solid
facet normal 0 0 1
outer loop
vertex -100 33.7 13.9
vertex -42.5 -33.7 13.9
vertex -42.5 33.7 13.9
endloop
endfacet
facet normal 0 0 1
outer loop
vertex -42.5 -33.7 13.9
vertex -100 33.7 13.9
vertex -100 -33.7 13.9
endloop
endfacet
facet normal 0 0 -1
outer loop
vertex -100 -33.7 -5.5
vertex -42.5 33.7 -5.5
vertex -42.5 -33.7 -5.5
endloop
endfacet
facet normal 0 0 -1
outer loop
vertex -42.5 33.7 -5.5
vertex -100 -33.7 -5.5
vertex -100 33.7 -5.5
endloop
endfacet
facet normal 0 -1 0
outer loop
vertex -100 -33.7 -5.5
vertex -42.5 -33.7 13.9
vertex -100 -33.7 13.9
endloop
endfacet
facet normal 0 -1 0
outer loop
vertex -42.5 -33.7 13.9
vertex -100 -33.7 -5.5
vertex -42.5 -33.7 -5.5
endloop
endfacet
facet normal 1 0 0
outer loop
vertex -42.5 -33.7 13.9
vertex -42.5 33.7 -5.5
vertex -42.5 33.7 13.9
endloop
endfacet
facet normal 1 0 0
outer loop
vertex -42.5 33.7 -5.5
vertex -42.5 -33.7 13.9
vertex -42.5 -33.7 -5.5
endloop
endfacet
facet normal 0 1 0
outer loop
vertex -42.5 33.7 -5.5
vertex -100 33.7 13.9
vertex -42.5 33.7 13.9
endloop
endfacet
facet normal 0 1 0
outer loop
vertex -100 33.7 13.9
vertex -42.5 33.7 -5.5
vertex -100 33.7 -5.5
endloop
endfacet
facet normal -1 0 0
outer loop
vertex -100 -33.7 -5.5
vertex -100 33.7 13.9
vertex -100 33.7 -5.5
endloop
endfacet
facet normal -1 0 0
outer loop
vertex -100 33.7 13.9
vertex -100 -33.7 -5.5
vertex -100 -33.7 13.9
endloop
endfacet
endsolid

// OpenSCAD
// file: ../md_vitamins.scad
// Envelopes of the bought electronics, placed where the parts expect them (for fit checks and renders)
SG90_STL = "/Users/hemangvora/OpenDuck/upstream/Open_Duck_Mini/mini_bdx/robots/open_duck_mini_v2/sg90.stl";
module v_sg90_jaw() multmatrix([[1,0,0,JAW_P[0]-5.7],[0,0,-1,-SG_BASE],[0,1,0,JAW_P[1]],[0,0,0,1]]) import(SG90_STL);
module v_radxa() {                         // Radxa Zero 3W 65 x 30 board on 6 mm standoffs + 16 mm component/wire budget
    translate([RADXA_X0, RADXA_Y0, CH_Z1 + 6]) { cube([65, 30, 1.6]); translate([2, 2, 1.6]) cube([61, 26, 16]); translate([0, 0, -2]) cube([65, 30, 2]); }
}
module v_buck() translate([-30, -13.5, CH_Z1 + 1]) cube([46, 27, 12]);            // XY-3606 (HW-688), generous envelope
module v_camera() translate([103.8, -12.5, EYE_C[1] - 14.5]) { cube([1.0, 25, 24]); translate([1.0, 12.5 - 4.25, 14.5 - 4.25]) cube([5.2, 8.5, 8.5]); }  // Pi cam v2 / IMX219 board + lens module
module v_tof() translate([103.8, TOF_C[0] - 6.5, TOF_C[1] - 6.5]) { cube([1.0, 13, 13]); translate([1.0, 6.5 - 3.2, 6.5 - 1.5]) cube([1.75, 6.4, 3.0]); }
module head_vitamins() { v_sg90_jaw(); v_radxa(); v_buck(); v_camera(); v_tof(); }

// ---------------- body electronics ----------------
module v_pack()    translate([DK_X0, -PACK[1] / 2, DK_Z1]) cube(PACK);                       // 3S1P Samsung 30Q pack
module v_bms()     translate([DK_X0 + 5, -31, DK_Z1 + PACK[2] + 0.5]) cube([48, 62, 7]);      // 3S 40 A BMS, 5-FET board
module v_adapter() translate([-44, -21, SHELF[4] + 4]) { cube([33, 42, 1.6]); translate([1, 1, 1.6]) cube([31, 40, 10]); }   // Bus Servo Adapter (A)
module v_switch()  {   // AUTO MT 12 V 20 A toggle, 12 mm hole; body 28 x 16 behind the panel, cover outside
    translate([DK_X0, SWITCH_C[0] - 14, SWITCH_C[1] - 8]) cube([45, 28, 16]);
    translate([BX_R - 25, SWITCH_C[0] - 14, SWITCH_C[1] - 8]) cube([25, 28, 16]);
}
module v_xt30()    translate([DK_X0, XT30_C[0] - 5.1, XT30_C[1] - 2.6]) cube([16, 10.2, 5.2]);
module v_balance() translate([DK_X0, BAL_C[0] - 6.2, BAL_C[1] - 2.9]) cube([8, 12.4, 5.8]);
module v_caps()    for (y = [26, 33]) translate([-40, y, SHELF[4] + 5.3]) rotate([0, 90, 0]) cylinder(d = 10.2, h = 21);  // 2 x 1000 uF 25 V lying on the shelf
module body_vitamins() { v_pack(); v_bms(); v_adapter(); v_switch(); v_xt30(); v_balance(); v_caps(); }
// file: ../md_params.scad
// =====================================================================
//  Microduck-look skin for the Open Duck Mini v2 skeleton
//  Shared parameters and helpers.
//  Frame: Open Duck print/robot frame, mm. +x forward, +y left, +z up.
//  Every part is modelled where it sits on the robot (zero pose).
// =====================================================================

$fn = 72;
EPS = 0.01;

// ---------- fasteners ----------
INSERT_D   = 4.0;   // hole for M3 x 5 brass heat-set insert (Amazon B0DZ8B7FW1)
INSERT_L   = 6.0;   // hole depth for that insert
M3_CLR     = 3.4;   // M3 clearance
M3_HEAD    = 6.5;   // M3 socket-head counterbore
M3_NUT     = 6.4;   // M3 nut across corners (+clearance)
M2_TAP     = 1.8;   // M2 self-tapping pilot (SG90 tab screws, servo adapter)
M25_TAP    = 2.2;   // M2.5 self-tapping pilot (Radxa)
M2_CLR     = 2.4;

// ---------- colours (for previews only) ----------
C_WHITE = [0.95, 0.94, 0.90];
C_BLACK = [0.13, 0.13, 0.14];

// ---------- helpers ----------
function lerp(a, b, t) = a + (b - a) * t;

// Section with vertical sides from zb to zc and a superellipse cap from zc to zt.
// Points are (y, z). n = 2 gives an ellipse, larger n gives a squarer top.
function se_pts(w, zb, zc, zt, n, N = 56) =
    concat(
        [[ w, zb]],
        [for (i = [0:N]) let(t = i * 180 / N, c = cos(t), s = sin(t))
            [w * sign(c) * pow(abs(c), 2 / n), zc + (zt - zc) * pow(abs(s), 2 / n)]],
        [[-w, zb]]
    );

// st = [x, half_width, z_bottom, z_curve_start, z_top, exponent]
module station(st, inset = 0, ext = 0) {
    translate([st[0], 0, 0]) rotate([90, 0, 90])
        linear_extrude(height = EPS, center = true)
            offset(delta = -inset)
                polygon(se_pts(st[1], st[2] - ext, st[3], st[4], st[5]));
}

// piecewise loft through convex stations (hull of neighbours)
module loft(sts, inset = 0, ext = 0) {
    for (i = [0:len(sts) - 2])
        hull() { station(sts[i], inset, ext); station(sts[i + 1], inset, ext); }
}

// station parameters interpolated at any x inside the list
function st_at(sts, x) =
    let(i = max([for (k = [0:len(sts) - 2]) if (sts[k][0] <= x) k]),
        a = sts[i], b = sts[i + 1], t = (x - a[0]) / (b[0] - a[0]))
    [x, lerp(a[1], b[1], t), lerp(a[2], b[2], t), lerp(a[3], b[3], t),
        lerp(a[4], b[4], t), lerp(a[5], b[5], t)];

// heat-set insert pocket: opening at origin, going along -z by default
module insert_hole(depth = INSERT_L, d = INSERT_D) {
    translate([0, 0, -depth]) cylinder(d = d, h = depth + EPS);
    translate([0, 0, -0.6]) cylinder(d1 = d, d2 = d + 0.8, h = 0.6 + EPS);   // lead-in chamfer
}

// M3 clearance with counterbore, axis +z, counterbore at the top
module m3_cb(len_total, cb_depth) {
    translate([0, 0, -EPS]) cylinder(d = M3_CLR, h = len_total + 2 * EPS);
    translate([0, 0, len_total - cb_depth]) cylinder(d = M3_HEAD, h = cb_depth + 1);
}

module rrect(x0, x1, y0, y1, r) {
    translate([x0 + r, y0 + r]) offset(r = r) square([x1 - x0 - 2 * r, y1 - y0 - 2 * r]);
}
// main file
include <../md_params.scad>
include <../md_head.scad>
include <../md_body.scad>
include <../md_vitamins.scad>
v_pack();
